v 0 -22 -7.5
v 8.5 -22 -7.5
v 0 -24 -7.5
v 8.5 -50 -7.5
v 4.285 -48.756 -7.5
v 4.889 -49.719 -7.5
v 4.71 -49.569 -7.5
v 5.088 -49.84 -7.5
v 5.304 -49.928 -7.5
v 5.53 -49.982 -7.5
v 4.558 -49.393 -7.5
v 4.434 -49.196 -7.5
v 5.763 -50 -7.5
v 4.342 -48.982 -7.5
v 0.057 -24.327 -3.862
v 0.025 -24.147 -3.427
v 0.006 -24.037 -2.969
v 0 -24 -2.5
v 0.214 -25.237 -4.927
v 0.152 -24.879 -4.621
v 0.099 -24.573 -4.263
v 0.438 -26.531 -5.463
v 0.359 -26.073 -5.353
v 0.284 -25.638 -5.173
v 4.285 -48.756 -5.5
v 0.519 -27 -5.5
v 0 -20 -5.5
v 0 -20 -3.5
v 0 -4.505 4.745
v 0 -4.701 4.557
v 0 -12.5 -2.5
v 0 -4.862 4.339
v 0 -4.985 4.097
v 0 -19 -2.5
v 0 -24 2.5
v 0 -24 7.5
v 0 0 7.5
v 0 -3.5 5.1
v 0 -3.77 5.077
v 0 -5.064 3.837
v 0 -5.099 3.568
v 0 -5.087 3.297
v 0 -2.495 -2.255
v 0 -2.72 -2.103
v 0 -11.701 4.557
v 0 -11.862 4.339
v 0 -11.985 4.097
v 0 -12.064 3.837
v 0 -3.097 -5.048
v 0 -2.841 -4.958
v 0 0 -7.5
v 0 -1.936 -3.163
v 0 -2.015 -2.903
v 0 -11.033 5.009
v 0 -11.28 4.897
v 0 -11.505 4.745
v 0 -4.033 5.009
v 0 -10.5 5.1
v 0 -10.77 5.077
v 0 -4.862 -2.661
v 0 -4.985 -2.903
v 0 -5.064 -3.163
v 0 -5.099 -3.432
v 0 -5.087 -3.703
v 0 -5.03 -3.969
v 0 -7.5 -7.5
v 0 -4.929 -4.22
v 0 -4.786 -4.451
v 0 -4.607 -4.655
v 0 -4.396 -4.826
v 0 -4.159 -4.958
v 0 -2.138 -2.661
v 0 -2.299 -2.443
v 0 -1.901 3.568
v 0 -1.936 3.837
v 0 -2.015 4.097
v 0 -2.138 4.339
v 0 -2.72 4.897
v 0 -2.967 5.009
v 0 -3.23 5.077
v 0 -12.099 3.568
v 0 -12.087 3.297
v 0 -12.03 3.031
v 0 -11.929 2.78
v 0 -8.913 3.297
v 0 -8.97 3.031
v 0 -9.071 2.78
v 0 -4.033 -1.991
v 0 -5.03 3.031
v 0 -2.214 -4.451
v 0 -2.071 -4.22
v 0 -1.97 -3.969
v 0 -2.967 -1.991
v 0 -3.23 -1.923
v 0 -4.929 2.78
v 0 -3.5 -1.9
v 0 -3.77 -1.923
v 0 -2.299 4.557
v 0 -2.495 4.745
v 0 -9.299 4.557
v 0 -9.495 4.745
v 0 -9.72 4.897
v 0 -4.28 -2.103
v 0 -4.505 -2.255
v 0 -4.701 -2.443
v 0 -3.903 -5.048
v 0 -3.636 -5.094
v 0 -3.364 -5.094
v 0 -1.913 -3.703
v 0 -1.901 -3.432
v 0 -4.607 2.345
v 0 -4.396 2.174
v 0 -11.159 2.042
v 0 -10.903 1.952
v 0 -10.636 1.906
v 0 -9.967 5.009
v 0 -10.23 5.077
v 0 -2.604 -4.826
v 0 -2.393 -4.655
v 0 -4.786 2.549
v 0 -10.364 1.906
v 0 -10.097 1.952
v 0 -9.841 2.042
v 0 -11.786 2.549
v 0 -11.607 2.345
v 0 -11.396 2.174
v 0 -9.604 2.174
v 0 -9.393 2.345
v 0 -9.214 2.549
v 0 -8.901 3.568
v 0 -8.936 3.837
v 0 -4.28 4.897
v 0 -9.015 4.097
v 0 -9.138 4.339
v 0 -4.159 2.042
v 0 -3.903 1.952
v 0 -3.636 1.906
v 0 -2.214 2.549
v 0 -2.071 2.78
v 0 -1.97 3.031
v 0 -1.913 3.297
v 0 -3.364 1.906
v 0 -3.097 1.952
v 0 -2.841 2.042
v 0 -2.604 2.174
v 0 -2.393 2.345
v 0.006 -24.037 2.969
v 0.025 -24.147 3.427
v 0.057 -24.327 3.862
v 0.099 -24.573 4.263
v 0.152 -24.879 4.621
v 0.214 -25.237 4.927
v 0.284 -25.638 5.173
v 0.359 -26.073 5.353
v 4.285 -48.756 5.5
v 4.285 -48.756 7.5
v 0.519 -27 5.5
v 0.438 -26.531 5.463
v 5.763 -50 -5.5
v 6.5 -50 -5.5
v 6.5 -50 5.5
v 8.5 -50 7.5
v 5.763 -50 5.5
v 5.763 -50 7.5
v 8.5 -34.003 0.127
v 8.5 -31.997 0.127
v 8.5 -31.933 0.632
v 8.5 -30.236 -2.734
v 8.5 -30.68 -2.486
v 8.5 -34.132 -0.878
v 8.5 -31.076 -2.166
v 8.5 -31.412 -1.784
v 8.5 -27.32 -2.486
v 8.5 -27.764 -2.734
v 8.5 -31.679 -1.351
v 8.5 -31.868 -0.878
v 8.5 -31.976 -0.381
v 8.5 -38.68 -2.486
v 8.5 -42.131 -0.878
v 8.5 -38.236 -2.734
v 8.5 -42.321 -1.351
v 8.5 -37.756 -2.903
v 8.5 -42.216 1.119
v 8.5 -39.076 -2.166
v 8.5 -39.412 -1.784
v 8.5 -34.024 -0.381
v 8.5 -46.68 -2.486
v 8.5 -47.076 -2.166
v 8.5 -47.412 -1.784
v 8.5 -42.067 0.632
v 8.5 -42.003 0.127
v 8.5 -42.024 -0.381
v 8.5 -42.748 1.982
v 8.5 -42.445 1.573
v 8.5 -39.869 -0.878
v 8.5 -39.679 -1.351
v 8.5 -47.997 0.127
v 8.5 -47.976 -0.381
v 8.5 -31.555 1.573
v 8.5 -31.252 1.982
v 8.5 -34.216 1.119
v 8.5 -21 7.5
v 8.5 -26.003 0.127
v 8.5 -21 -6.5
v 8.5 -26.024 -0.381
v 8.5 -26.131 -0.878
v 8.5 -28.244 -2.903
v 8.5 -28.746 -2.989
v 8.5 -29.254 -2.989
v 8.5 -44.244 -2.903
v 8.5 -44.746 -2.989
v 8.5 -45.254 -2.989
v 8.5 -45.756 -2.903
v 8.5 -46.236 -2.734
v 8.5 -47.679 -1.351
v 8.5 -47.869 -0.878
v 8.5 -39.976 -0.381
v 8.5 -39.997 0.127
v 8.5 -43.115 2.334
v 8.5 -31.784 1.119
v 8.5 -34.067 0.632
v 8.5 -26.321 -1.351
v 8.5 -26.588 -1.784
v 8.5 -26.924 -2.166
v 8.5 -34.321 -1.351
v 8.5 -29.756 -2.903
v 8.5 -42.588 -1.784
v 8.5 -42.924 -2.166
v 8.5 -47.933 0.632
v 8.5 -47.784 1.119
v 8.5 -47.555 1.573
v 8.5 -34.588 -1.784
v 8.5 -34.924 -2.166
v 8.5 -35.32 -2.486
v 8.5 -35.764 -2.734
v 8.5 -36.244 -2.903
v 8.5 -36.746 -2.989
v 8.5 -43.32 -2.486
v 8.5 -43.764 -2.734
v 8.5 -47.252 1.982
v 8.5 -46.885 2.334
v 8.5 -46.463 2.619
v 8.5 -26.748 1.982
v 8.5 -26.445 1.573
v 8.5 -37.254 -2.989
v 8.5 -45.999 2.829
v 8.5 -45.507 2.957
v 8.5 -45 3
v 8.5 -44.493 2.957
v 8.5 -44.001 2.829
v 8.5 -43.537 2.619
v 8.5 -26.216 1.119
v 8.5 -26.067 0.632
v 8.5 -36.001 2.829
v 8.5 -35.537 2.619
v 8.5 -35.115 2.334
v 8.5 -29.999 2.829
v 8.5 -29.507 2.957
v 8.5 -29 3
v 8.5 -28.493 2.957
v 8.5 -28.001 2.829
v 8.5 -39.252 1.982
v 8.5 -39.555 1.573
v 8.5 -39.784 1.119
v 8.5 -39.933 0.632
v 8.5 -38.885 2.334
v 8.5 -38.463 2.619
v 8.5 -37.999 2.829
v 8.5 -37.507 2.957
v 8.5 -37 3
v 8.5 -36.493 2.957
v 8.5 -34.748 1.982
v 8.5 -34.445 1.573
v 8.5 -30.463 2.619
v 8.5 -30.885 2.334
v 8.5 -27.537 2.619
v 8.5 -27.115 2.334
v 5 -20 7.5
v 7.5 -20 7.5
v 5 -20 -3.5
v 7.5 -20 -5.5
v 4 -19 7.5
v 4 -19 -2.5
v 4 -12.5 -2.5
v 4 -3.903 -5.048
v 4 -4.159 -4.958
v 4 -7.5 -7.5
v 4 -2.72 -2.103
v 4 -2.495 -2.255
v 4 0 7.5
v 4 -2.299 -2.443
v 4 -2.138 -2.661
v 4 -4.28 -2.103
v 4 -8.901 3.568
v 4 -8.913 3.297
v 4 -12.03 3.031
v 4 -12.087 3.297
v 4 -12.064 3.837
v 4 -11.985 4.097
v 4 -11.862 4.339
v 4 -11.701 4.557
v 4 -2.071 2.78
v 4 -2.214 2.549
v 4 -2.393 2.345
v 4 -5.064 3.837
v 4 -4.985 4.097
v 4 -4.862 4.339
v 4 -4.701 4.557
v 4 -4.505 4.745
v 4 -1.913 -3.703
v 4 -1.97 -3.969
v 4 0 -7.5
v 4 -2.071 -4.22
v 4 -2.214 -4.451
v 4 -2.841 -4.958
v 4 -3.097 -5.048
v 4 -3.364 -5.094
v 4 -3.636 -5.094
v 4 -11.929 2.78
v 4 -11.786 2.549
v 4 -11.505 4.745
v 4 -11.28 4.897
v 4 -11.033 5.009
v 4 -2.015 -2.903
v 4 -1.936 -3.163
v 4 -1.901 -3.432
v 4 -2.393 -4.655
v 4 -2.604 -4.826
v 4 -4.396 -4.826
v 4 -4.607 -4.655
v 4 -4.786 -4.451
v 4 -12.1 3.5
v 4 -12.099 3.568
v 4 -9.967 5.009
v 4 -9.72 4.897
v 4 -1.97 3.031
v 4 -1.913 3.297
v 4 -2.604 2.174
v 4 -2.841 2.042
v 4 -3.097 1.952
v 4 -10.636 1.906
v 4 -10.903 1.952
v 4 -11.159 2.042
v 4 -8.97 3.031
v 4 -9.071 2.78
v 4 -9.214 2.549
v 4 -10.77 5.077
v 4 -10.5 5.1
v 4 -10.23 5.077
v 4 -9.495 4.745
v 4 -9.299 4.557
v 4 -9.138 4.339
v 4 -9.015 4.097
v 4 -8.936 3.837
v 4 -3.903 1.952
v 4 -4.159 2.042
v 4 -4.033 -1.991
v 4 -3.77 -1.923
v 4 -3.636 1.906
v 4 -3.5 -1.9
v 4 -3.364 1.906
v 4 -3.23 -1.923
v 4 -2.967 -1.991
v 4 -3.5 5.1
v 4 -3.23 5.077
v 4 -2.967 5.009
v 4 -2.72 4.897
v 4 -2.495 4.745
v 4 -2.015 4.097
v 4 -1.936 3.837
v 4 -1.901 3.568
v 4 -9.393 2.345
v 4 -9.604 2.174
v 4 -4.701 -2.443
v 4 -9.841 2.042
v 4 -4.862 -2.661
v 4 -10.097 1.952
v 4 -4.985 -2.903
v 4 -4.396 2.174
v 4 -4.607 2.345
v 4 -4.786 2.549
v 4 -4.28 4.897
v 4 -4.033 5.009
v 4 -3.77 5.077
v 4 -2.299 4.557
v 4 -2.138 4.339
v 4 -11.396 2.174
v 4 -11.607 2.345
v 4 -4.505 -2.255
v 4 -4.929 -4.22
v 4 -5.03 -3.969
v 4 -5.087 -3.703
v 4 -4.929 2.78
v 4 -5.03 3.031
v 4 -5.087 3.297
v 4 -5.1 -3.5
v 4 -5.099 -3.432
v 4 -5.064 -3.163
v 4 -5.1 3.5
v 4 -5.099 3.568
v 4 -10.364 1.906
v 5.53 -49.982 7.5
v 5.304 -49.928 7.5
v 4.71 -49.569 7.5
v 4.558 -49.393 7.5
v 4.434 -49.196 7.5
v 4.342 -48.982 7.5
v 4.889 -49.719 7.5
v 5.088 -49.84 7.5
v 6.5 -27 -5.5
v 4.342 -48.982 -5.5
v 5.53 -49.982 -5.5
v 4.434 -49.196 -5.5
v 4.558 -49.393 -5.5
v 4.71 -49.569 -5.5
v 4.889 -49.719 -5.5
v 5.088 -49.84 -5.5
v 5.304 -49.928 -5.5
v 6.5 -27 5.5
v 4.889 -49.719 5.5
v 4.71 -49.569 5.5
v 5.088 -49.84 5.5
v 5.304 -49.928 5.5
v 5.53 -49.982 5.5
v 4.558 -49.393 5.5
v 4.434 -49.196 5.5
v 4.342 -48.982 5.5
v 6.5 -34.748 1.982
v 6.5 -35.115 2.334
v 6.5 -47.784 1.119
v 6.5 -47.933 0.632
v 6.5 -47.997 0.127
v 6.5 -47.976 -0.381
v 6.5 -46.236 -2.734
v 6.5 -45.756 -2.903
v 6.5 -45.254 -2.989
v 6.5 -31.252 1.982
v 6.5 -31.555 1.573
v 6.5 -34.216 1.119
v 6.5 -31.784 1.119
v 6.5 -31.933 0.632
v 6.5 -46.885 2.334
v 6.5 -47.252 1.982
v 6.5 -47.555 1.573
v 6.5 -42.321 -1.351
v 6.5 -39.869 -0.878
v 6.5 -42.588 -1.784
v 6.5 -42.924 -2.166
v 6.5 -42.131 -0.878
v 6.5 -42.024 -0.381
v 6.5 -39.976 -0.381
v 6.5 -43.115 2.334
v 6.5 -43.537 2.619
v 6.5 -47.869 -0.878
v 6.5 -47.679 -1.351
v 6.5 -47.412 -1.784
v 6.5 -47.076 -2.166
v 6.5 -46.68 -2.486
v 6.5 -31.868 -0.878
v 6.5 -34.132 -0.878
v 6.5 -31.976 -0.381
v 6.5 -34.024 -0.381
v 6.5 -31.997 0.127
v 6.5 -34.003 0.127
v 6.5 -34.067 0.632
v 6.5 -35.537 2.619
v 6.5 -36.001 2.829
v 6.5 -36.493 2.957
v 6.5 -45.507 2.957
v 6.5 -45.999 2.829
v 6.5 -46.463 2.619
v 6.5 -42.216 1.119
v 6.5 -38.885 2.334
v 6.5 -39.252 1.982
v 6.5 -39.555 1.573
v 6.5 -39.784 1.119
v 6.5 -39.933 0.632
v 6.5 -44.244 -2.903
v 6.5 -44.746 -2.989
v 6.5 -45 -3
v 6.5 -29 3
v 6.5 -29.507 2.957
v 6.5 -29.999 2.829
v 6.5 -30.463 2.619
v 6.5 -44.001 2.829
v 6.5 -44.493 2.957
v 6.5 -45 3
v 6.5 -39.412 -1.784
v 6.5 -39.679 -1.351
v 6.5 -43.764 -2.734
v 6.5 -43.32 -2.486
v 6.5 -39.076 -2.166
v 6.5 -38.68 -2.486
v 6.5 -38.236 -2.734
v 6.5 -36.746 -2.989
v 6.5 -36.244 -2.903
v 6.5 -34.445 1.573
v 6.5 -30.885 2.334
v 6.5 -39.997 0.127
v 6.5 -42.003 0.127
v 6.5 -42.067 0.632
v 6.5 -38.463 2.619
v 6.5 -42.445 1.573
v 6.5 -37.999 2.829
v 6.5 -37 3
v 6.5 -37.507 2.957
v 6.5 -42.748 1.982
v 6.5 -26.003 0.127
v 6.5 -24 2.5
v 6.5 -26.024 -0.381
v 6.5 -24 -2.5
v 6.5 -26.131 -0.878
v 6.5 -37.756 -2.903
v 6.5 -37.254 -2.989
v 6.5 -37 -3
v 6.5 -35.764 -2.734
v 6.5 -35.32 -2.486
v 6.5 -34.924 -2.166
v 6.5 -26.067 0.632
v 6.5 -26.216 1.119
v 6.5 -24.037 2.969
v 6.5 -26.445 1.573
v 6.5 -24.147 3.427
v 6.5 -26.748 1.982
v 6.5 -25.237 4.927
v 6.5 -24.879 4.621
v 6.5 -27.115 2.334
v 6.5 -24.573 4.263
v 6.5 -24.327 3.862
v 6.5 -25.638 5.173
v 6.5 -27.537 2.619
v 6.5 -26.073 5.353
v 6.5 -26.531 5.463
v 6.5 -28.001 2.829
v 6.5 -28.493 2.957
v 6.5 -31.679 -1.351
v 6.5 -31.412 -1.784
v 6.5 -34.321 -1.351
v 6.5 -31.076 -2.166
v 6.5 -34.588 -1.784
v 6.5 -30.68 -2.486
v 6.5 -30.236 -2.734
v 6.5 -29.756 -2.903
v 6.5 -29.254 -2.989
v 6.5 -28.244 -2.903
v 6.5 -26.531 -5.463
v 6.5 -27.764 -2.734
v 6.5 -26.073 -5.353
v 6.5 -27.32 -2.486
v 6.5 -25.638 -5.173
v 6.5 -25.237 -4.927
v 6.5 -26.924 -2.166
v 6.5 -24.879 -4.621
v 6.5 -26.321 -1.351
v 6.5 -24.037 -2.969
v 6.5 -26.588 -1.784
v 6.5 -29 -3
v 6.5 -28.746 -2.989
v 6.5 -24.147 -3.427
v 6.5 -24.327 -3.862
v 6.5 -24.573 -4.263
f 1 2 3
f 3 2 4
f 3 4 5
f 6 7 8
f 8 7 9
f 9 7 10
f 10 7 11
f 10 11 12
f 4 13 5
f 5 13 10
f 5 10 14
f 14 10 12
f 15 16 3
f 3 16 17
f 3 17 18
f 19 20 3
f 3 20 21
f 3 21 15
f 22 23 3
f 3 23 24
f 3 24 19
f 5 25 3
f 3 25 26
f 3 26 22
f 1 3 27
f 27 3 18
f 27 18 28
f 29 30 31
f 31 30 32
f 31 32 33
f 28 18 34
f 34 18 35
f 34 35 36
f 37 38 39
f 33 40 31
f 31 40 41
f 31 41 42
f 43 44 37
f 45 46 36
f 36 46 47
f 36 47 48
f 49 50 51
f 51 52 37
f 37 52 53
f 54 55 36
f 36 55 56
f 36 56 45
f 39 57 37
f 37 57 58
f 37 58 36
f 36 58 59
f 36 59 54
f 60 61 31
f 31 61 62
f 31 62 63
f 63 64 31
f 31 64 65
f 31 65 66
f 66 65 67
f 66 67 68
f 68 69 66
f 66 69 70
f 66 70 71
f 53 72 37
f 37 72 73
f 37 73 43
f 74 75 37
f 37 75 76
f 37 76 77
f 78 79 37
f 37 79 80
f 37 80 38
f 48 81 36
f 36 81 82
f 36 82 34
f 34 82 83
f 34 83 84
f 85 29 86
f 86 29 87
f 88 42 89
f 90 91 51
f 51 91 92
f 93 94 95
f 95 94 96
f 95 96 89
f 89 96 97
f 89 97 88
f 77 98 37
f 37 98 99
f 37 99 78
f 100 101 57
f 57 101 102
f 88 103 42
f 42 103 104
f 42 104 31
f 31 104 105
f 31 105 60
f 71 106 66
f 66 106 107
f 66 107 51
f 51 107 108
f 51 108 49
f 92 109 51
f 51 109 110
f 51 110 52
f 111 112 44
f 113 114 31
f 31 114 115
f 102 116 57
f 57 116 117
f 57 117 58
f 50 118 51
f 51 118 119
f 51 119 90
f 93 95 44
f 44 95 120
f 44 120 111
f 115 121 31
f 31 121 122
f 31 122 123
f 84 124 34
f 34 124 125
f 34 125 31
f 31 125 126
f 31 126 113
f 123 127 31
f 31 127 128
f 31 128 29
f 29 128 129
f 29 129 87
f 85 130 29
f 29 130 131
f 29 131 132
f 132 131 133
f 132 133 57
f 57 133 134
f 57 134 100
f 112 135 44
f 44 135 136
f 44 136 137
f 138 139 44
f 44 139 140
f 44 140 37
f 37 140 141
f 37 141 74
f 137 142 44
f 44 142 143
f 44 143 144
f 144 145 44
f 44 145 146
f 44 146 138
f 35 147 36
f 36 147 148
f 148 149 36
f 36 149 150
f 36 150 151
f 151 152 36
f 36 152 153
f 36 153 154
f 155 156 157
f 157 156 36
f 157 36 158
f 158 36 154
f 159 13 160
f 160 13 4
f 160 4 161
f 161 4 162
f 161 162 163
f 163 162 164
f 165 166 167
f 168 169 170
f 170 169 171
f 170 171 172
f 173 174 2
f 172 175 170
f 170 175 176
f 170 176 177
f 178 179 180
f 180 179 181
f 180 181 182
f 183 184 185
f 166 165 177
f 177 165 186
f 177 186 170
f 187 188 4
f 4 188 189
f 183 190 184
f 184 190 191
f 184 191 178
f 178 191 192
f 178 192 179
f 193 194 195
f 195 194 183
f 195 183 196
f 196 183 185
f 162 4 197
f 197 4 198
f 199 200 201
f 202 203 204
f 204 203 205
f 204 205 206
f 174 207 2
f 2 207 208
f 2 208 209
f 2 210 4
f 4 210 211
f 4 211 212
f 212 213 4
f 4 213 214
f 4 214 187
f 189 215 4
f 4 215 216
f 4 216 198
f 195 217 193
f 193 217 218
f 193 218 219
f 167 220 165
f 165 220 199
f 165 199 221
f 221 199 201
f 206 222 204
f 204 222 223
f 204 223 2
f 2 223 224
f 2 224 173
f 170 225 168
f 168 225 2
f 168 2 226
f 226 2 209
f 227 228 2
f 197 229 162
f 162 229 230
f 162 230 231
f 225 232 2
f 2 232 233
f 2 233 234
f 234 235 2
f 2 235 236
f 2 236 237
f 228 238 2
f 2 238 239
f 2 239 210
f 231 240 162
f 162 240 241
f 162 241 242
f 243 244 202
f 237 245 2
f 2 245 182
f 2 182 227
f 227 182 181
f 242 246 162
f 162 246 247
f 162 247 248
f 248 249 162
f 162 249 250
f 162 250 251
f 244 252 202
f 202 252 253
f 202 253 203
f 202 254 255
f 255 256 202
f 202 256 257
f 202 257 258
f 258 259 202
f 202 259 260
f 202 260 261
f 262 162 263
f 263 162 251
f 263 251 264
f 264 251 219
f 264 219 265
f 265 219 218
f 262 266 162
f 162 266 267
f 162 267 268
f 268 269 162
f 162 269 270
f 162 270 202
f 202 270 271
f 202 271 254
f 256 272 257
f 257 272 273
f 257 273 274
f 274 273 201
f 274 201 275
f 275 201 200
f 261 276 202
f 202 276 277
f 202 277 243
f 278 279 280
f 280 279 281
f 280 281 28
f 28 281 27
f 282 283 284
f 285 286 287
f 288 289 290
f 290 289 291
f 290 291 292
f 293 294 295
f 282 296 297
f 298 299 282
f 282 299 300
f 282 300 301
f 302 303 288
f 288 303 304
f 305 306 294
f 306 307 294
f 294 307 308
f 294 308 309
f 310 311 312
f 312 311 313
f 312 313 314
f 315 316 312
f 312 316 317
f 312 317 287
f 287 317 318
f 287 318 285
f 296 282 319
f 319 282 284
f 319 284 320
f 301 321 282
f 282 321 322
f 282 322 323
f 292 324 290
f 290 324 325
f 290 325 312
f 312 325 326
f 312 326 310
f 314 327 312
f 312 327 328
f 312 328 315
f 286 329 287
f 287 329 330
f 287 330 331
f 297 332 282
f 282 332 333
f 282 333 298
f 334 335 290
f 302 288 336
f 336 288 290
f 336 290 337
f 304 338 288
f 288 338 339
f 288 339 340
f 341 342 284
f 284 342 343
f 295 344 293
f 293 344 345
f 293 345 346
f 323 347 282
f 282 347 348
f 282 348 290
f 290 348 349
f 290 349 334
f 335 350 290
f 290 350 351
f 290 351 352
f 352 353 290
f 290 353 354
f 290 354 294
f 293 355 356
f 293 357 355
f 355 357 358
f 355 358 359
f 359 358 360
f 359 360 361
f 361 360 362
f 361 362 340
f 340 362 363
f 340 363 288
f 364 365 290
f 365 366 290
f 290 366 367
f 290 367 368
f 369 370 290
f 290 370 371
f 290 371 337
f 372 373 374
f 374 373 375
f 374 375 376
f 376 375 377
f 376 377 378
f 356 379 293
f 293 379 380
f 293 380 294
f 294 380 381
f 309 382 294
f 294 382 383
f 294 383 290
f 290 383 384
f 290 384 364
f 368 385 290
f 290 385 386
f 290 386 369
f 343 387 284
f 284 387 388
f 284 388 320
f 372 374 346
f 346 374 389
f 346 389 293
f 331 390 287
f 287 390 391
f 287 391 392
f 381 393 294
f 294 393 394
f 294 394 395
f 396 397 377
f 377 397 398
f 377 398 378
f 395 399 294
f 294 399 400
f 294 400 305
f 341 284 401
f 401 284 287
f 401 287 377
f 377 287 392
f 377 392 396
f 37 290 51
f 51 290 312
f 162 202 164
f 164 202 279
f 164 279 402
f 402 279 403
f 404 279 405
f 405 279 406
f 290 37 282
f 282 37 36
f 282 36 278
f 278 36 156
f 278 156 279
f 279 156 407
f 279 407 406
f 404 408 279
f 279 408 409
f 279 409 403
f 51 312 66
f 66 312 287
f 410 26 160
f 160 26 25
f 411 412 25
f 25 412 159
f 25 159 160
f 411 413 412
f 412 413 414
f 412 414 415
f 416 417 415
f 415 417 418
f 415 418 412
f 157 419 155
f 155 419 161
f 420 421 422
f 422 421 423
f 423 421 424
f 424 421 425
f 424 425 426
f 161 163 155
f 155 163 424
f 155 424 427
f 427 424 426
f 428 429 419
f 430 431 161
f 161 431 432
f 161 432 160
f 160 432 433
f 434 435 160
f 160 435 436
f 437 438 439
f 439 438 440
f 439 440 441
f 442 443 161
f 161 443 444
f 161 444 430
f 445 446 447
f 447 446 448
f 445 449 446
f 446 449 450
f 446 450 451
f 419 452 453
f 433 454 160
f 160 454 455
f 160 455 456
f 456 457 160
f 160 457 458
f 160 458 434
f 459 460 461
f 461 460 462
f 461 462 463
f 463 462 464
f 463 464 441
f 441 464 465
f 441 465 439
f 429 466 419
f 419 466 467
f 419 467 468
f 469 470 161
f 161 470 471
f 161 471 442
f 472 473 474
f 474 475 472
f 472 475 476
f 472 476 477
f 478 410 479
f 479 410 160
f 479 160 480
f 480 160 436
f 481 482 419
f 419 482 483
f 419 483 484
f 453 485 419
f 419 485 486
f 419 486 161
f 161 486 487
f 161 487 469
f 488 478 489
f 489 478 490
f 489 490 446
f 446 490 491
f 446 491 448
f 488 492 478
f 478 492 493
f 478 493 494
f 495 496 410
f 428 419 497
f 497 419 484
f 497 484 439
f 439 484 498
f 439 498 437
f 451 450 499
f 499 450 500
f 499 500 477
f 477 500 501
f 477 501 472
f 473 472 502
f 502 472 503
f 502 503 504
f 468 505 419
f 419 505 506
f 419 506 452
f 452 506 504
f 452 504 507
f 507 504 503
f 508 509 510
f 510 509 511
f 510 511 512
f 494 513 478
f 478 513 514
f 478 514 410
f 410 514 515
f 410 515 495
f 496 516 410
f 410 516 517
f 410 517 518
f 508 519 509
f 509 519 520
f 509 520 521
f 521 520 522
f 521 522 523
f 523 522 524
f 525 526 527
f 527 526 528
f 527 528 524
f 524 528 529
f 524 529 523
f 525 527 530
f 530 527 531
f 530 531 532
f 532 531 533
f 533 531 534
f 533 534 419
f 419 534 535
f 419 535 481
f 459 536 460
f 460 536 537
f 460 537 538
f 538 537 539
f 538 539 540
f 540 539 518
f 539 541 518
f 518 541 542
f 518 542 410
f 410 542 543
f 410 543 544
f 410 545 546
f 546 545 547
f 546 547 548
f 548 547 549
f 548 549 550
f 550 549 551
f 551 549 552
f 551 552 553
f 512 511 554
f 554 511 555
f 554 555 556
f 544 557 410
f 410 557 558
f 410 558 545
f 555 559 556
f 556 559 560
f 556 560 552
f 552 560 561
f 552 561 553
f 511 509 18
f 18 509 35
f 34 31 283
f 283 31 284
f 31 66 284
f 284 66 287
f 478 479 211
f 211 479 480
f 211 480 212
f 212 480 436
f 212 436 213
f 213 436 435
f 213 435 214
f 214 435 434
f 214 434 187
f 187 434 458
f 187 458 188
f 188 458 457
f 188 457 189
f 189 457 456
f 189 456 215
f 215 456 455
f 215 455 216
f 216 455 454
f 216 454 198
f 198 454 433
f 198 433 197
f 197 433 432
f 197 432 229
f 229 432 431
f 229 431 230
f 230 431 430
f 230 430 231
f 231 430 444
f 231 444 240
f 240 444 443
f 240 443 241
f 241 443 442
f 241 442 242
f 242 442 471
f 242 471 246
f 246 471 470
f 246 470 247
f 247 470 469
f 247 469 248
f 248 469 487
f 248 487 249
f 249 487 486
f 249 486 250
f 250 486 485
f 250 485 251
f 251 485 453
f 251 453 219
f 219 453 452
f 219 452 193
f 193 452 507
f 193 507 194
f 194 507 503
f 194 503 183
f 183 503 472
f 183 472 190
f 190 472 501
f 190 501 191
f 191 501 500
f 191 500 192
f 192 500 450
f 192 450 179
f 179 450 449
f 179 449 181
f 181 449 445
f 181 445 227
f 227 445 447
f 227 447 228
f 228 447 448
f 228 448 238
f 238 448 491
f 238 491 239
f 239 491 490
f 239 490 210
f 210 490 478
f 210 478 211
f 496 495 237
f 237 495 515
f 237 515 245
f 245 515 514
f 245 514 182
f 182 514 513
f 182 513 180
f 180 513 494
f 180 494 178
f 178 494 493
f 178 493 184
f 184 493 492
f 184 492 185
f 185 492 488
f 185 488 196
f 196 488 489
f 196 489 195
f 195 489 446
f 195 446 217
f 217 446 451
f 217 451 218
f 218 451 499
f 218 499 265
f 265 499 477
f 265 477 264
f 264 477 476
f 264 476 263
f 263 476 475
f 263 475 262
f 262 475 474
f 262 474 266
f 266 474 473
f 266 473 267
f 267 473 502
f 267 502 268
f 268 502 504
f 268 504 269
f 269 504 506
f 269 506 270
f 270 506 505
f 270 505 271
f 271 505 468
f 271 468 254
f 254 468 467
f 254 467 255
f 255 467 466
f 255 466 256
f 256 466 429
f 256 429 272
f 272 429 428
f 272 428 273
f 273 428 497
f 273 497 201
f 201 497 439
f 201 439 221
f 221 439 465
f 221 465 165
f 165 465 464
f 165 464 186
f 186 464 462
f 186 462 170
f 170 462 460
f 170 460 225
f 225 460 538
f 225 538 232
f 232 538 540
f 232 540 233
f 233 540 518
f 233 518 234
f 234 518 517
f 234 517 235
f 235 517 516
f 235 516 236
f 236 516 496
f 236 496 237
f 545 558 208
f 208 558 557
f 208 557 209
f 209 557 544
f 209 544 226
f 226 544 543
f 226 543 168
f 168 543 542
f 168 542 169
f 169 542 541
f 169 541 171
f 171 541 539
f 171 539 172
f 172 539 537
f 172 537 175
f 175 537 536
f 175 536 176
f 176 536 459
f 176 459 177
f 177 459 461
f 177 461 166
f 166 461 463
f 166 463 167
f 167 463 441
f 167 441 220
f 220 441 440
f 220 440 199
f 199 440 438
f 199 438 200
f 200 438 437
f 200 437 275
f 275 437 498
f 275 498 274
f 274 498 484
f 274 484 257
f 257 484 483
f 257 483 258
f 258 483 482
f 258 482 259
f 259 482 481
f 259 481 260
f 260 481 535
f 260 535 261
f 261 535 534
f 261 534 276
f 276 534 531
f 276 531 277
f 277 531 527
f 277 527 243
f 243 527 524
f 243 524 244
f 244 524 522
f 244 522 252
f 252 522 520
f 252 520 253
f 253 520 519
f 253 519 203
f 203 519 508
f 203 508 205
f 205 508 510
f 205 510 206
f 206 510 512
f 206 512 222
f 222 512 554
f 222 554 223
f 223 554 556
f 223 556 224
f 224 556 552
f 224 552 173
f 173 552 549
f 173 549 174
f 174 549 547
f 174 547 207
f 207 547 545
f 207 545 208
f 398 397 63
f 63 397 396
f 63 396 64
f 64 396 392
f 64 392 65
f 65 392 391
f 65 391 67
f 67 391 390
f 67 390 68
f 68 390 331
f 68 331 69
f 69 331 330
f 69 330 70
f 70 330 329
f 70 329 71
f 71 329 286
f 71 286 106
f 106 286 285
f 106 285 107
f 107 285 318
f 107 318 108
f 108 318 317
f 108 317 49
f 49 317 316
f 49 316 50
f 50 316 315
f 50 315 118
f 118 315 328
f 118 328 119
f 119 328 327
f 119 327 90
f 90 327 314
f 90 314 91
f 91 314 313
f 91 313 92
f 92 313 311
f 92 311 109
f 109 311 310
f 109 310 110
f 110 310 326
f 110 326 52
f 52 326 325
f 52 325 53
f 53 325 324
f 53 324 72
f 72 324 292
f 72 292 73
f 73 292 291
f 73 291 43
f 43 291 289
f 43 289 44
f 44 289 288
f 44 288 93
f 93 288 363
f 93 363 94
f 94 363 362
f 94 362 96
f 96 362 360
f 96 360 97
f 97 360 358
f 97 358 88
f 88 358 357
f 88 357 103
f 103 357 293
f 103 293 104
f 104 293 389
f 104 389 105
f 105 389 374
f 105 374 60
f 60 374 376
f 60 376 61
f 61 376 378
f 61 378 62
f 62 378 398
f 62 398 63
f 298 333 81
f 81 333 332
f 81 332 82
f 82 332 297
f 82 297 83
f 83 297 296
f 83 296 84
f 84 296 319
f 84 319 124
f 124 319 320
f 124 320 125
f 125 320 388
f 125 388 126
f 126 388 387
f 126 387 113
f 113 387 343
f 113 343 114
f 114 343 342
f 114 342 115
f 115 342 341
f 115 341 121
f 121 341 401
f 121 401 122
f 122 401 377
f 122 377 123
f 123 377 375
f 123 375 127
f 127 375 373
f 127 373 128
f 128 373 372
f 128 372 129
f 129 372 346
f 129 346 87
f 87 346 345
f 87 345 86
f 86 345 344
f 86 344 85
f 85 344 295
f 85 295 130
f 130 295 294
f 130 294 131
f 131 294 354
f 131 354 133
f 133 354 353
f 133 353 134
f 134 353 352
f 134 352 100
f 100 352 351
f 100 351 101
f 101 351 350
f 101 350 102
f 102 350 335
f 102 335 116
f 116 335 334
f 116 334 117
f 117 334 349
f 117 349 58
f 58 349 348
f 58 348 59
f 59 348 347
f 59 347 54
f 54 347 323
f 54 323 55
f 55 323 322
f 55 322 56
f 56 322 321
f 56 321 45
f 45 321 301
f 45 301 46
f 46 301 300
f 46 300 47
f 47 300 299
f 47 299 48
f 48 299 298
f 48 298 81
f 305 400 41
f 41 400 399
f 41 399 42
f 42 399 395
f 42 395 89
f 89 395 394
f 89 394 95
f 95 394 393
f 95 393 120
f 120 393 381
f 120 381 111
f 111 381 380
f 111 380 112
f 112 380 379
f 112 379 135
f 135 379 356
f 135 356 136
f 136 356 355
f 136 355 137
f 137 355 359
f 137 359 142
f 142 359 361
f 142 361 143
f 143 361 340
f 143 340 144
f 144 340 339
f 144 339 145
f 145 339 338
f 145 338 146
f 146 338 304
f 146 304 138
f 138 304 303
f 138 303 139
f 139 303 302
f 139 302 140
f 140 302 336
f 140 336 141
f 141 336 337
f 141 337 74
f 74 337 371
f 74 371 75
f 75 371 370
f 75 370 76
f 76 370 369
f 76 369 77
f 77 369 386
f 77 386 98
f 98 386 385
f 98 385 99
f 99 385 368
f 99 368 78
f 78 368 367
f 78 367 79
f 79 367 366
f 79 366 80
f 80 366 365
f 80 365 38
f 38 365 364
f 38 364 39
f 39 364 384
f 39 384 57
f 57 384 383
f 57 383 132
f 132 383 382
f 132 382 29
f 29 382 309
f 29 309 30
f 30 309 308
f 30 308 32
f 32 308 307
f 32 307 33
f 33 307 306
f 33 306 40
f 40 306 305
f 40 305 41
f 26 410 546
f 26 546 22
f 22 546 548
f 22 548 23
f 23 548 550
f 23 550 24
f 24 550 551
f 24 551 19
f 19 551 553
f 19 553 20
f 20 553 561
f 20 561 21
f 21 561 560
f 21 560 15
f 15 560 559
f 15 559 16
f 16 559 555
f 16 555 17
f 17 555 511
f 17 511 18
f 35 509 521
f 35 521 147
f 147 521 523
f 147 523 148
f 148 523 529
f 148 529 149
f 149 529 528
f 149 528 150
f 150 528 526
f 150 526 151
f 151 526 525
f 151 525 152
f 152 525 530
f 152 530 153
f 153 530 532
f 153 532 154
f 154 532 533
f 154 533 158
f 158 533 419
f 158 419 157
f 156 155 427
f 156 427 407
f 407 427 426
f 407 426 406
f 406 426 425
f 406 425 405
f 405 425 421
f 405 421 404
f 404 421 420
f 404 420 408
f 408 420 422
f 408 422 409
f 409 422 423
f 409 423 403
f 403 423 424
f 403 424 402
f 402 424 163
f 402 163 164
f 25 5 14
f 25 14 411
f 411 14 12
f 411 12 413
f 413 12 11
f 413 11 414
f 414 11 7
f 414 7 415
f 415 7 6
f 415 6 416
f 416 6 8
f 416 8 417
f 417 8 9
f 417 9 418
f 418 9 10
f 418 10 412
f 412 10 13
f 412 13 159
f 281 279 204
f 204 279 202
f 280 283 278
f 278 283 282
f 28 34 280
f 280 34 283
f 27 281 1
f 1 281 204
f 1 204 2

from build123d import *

# Parameters (mm, degrees)
DODANIE_WYCI_GNI_CIE1_DEPTH = 7.5
SZKIC2_W                    = 6.5
SZKIC2_H                    = 11
WYTNIJ_WYCI_GNI_CIE1_DEPTH  = 26
WYTNIJ_WYCI_GNI_CIE2_REACH  = 53.269
SZKIC4_R                    = 1.6
SZKIC4_R_2                  = 3
WYTNIJ_WYCI_GNI_CIE3_DEPTH  = 52.268898954
ZAOKR_GLENIE1_R             = 3
ZAOKR_GLENIE2_R             = 1.5
SFAZOWANIE2_SIZE            = 1
SFAZOWANIE3_SIZE            = 2


with BuildPart() as part:
    # Szkic1 → Dodanie-wyciągnięcie1 (new, symmetric)
    with BuildSketch(Plane.XY):
        Polygon((0, 0), (4, 0), (4, -20), (8.5, -20), (8.5, -50), (4.5, -50), (0, -24), align=None)
    extrude(amount=DODANIE_WYCI_GNI_CIE1_DEPTH, both=True)

    # Szkic2 → Wytnij-wyciągnięcie1 (cut)
    with BuildSketch(Plane.XZ.offset(50)):
        with Locations((3.25, 0)):
            Rectangle(SZKIC2_W, SZKIC2_H)
    extrude(amount=-WYTNIJ_WYCI_GNI_CIE1_DEPTH, mode=Mode.SUBTRACT)

    # Szkic3 → Wytnij-wyciągnięcie2 (cut, up to next)
    with BuildSketch(Plane.ZY, mode=Mode.PRIVATE) as wytnij_wyci_gni_cie2_sk1:
        Polygon((-7.5, -7.5), (-7.5, -20), (-2.5, -20), (-2.5, -12.5), align=None)
    wytnij_wyci_gni_cie2_tool1 = extrude(wytnij_wyci_gni_cie2_sk1.sketch, amount=-WYTNIJ_WYCI_GNI_CIE2_REACH, mode=Mode.PRIVATE) & part.part
    add(wytnij_wyci_gni_cie2_tool1.solids().sort_by_distance((0, -14.895833, -5.208333))[0], mode=Mode.SUBTRACT)

    # Szkic4 → Wytnij-wyciągnięcie3 (cut, through all)
    with BuildSketch(Plane.ZY):
        with Locations((-3.5, -3.5)):
            Circle(SZKIC4_R)
        with Locations((3.5, -3.5)):
            Circle(SZKIC4_R)
        with Locations((0, -29)):
            Circle(SZKIC4_R_2)
        with Locations((0, -37)):
            Circle(SZKIC4_R_2)
        with Locations((0, -45)):
            Circle(SZKIC4_R_2)
        with Locations((3.5, -10.5)):
            Circle(SZKIC4_R)
    extrude(amount=-WYTNIJ_WYCI_GNI_CIE3_DEPTH, mode=Mode.SUBTRACT)

    # Zaokrąglenie1
    zaokr_glenie1_edges = [part.edges().sort_by_distance(p)[0] for p in [
        (3.25, -24, -5.5),
        (3.25, -24, 5.5),
    ]]
    fillet(zaokr_glenie1_edges, radius=ZAOKR_GLENIE1_R)

    # Zaokrąglenie2
    zaokr_glenie2_edges = [part.edges().sort_by_distance(p)[0] for p in [
        (4.5, -50, 6.5),
        (4.5, -50, -6.5),
    ]]
    fillet(zaokr_glenie2_edges, radius=ZAOKR_GLENIE2_R)

    # Sfazowanie2
    sfazowanie2_edges = [part.edges().sort_by_distance(p)[0] for p in [
        (4, -20, 2.5),
        (8.5, -20, 0),
        (2, -20, -2.5),
    ]]
    chamfer(sfazowanie2_edges, length=SFAZOWANIE2_SIZE)

    # Sfazowanie3
    sfazowanie3_edges = [part.edges().sort_by_distance(p)[0] for p in [
        (3.75, -20, -7.5),
    ]]
    chamfer(sfazowanie3_edges, length=SFAZOWANIE3_SIZE)


solid = part.part
